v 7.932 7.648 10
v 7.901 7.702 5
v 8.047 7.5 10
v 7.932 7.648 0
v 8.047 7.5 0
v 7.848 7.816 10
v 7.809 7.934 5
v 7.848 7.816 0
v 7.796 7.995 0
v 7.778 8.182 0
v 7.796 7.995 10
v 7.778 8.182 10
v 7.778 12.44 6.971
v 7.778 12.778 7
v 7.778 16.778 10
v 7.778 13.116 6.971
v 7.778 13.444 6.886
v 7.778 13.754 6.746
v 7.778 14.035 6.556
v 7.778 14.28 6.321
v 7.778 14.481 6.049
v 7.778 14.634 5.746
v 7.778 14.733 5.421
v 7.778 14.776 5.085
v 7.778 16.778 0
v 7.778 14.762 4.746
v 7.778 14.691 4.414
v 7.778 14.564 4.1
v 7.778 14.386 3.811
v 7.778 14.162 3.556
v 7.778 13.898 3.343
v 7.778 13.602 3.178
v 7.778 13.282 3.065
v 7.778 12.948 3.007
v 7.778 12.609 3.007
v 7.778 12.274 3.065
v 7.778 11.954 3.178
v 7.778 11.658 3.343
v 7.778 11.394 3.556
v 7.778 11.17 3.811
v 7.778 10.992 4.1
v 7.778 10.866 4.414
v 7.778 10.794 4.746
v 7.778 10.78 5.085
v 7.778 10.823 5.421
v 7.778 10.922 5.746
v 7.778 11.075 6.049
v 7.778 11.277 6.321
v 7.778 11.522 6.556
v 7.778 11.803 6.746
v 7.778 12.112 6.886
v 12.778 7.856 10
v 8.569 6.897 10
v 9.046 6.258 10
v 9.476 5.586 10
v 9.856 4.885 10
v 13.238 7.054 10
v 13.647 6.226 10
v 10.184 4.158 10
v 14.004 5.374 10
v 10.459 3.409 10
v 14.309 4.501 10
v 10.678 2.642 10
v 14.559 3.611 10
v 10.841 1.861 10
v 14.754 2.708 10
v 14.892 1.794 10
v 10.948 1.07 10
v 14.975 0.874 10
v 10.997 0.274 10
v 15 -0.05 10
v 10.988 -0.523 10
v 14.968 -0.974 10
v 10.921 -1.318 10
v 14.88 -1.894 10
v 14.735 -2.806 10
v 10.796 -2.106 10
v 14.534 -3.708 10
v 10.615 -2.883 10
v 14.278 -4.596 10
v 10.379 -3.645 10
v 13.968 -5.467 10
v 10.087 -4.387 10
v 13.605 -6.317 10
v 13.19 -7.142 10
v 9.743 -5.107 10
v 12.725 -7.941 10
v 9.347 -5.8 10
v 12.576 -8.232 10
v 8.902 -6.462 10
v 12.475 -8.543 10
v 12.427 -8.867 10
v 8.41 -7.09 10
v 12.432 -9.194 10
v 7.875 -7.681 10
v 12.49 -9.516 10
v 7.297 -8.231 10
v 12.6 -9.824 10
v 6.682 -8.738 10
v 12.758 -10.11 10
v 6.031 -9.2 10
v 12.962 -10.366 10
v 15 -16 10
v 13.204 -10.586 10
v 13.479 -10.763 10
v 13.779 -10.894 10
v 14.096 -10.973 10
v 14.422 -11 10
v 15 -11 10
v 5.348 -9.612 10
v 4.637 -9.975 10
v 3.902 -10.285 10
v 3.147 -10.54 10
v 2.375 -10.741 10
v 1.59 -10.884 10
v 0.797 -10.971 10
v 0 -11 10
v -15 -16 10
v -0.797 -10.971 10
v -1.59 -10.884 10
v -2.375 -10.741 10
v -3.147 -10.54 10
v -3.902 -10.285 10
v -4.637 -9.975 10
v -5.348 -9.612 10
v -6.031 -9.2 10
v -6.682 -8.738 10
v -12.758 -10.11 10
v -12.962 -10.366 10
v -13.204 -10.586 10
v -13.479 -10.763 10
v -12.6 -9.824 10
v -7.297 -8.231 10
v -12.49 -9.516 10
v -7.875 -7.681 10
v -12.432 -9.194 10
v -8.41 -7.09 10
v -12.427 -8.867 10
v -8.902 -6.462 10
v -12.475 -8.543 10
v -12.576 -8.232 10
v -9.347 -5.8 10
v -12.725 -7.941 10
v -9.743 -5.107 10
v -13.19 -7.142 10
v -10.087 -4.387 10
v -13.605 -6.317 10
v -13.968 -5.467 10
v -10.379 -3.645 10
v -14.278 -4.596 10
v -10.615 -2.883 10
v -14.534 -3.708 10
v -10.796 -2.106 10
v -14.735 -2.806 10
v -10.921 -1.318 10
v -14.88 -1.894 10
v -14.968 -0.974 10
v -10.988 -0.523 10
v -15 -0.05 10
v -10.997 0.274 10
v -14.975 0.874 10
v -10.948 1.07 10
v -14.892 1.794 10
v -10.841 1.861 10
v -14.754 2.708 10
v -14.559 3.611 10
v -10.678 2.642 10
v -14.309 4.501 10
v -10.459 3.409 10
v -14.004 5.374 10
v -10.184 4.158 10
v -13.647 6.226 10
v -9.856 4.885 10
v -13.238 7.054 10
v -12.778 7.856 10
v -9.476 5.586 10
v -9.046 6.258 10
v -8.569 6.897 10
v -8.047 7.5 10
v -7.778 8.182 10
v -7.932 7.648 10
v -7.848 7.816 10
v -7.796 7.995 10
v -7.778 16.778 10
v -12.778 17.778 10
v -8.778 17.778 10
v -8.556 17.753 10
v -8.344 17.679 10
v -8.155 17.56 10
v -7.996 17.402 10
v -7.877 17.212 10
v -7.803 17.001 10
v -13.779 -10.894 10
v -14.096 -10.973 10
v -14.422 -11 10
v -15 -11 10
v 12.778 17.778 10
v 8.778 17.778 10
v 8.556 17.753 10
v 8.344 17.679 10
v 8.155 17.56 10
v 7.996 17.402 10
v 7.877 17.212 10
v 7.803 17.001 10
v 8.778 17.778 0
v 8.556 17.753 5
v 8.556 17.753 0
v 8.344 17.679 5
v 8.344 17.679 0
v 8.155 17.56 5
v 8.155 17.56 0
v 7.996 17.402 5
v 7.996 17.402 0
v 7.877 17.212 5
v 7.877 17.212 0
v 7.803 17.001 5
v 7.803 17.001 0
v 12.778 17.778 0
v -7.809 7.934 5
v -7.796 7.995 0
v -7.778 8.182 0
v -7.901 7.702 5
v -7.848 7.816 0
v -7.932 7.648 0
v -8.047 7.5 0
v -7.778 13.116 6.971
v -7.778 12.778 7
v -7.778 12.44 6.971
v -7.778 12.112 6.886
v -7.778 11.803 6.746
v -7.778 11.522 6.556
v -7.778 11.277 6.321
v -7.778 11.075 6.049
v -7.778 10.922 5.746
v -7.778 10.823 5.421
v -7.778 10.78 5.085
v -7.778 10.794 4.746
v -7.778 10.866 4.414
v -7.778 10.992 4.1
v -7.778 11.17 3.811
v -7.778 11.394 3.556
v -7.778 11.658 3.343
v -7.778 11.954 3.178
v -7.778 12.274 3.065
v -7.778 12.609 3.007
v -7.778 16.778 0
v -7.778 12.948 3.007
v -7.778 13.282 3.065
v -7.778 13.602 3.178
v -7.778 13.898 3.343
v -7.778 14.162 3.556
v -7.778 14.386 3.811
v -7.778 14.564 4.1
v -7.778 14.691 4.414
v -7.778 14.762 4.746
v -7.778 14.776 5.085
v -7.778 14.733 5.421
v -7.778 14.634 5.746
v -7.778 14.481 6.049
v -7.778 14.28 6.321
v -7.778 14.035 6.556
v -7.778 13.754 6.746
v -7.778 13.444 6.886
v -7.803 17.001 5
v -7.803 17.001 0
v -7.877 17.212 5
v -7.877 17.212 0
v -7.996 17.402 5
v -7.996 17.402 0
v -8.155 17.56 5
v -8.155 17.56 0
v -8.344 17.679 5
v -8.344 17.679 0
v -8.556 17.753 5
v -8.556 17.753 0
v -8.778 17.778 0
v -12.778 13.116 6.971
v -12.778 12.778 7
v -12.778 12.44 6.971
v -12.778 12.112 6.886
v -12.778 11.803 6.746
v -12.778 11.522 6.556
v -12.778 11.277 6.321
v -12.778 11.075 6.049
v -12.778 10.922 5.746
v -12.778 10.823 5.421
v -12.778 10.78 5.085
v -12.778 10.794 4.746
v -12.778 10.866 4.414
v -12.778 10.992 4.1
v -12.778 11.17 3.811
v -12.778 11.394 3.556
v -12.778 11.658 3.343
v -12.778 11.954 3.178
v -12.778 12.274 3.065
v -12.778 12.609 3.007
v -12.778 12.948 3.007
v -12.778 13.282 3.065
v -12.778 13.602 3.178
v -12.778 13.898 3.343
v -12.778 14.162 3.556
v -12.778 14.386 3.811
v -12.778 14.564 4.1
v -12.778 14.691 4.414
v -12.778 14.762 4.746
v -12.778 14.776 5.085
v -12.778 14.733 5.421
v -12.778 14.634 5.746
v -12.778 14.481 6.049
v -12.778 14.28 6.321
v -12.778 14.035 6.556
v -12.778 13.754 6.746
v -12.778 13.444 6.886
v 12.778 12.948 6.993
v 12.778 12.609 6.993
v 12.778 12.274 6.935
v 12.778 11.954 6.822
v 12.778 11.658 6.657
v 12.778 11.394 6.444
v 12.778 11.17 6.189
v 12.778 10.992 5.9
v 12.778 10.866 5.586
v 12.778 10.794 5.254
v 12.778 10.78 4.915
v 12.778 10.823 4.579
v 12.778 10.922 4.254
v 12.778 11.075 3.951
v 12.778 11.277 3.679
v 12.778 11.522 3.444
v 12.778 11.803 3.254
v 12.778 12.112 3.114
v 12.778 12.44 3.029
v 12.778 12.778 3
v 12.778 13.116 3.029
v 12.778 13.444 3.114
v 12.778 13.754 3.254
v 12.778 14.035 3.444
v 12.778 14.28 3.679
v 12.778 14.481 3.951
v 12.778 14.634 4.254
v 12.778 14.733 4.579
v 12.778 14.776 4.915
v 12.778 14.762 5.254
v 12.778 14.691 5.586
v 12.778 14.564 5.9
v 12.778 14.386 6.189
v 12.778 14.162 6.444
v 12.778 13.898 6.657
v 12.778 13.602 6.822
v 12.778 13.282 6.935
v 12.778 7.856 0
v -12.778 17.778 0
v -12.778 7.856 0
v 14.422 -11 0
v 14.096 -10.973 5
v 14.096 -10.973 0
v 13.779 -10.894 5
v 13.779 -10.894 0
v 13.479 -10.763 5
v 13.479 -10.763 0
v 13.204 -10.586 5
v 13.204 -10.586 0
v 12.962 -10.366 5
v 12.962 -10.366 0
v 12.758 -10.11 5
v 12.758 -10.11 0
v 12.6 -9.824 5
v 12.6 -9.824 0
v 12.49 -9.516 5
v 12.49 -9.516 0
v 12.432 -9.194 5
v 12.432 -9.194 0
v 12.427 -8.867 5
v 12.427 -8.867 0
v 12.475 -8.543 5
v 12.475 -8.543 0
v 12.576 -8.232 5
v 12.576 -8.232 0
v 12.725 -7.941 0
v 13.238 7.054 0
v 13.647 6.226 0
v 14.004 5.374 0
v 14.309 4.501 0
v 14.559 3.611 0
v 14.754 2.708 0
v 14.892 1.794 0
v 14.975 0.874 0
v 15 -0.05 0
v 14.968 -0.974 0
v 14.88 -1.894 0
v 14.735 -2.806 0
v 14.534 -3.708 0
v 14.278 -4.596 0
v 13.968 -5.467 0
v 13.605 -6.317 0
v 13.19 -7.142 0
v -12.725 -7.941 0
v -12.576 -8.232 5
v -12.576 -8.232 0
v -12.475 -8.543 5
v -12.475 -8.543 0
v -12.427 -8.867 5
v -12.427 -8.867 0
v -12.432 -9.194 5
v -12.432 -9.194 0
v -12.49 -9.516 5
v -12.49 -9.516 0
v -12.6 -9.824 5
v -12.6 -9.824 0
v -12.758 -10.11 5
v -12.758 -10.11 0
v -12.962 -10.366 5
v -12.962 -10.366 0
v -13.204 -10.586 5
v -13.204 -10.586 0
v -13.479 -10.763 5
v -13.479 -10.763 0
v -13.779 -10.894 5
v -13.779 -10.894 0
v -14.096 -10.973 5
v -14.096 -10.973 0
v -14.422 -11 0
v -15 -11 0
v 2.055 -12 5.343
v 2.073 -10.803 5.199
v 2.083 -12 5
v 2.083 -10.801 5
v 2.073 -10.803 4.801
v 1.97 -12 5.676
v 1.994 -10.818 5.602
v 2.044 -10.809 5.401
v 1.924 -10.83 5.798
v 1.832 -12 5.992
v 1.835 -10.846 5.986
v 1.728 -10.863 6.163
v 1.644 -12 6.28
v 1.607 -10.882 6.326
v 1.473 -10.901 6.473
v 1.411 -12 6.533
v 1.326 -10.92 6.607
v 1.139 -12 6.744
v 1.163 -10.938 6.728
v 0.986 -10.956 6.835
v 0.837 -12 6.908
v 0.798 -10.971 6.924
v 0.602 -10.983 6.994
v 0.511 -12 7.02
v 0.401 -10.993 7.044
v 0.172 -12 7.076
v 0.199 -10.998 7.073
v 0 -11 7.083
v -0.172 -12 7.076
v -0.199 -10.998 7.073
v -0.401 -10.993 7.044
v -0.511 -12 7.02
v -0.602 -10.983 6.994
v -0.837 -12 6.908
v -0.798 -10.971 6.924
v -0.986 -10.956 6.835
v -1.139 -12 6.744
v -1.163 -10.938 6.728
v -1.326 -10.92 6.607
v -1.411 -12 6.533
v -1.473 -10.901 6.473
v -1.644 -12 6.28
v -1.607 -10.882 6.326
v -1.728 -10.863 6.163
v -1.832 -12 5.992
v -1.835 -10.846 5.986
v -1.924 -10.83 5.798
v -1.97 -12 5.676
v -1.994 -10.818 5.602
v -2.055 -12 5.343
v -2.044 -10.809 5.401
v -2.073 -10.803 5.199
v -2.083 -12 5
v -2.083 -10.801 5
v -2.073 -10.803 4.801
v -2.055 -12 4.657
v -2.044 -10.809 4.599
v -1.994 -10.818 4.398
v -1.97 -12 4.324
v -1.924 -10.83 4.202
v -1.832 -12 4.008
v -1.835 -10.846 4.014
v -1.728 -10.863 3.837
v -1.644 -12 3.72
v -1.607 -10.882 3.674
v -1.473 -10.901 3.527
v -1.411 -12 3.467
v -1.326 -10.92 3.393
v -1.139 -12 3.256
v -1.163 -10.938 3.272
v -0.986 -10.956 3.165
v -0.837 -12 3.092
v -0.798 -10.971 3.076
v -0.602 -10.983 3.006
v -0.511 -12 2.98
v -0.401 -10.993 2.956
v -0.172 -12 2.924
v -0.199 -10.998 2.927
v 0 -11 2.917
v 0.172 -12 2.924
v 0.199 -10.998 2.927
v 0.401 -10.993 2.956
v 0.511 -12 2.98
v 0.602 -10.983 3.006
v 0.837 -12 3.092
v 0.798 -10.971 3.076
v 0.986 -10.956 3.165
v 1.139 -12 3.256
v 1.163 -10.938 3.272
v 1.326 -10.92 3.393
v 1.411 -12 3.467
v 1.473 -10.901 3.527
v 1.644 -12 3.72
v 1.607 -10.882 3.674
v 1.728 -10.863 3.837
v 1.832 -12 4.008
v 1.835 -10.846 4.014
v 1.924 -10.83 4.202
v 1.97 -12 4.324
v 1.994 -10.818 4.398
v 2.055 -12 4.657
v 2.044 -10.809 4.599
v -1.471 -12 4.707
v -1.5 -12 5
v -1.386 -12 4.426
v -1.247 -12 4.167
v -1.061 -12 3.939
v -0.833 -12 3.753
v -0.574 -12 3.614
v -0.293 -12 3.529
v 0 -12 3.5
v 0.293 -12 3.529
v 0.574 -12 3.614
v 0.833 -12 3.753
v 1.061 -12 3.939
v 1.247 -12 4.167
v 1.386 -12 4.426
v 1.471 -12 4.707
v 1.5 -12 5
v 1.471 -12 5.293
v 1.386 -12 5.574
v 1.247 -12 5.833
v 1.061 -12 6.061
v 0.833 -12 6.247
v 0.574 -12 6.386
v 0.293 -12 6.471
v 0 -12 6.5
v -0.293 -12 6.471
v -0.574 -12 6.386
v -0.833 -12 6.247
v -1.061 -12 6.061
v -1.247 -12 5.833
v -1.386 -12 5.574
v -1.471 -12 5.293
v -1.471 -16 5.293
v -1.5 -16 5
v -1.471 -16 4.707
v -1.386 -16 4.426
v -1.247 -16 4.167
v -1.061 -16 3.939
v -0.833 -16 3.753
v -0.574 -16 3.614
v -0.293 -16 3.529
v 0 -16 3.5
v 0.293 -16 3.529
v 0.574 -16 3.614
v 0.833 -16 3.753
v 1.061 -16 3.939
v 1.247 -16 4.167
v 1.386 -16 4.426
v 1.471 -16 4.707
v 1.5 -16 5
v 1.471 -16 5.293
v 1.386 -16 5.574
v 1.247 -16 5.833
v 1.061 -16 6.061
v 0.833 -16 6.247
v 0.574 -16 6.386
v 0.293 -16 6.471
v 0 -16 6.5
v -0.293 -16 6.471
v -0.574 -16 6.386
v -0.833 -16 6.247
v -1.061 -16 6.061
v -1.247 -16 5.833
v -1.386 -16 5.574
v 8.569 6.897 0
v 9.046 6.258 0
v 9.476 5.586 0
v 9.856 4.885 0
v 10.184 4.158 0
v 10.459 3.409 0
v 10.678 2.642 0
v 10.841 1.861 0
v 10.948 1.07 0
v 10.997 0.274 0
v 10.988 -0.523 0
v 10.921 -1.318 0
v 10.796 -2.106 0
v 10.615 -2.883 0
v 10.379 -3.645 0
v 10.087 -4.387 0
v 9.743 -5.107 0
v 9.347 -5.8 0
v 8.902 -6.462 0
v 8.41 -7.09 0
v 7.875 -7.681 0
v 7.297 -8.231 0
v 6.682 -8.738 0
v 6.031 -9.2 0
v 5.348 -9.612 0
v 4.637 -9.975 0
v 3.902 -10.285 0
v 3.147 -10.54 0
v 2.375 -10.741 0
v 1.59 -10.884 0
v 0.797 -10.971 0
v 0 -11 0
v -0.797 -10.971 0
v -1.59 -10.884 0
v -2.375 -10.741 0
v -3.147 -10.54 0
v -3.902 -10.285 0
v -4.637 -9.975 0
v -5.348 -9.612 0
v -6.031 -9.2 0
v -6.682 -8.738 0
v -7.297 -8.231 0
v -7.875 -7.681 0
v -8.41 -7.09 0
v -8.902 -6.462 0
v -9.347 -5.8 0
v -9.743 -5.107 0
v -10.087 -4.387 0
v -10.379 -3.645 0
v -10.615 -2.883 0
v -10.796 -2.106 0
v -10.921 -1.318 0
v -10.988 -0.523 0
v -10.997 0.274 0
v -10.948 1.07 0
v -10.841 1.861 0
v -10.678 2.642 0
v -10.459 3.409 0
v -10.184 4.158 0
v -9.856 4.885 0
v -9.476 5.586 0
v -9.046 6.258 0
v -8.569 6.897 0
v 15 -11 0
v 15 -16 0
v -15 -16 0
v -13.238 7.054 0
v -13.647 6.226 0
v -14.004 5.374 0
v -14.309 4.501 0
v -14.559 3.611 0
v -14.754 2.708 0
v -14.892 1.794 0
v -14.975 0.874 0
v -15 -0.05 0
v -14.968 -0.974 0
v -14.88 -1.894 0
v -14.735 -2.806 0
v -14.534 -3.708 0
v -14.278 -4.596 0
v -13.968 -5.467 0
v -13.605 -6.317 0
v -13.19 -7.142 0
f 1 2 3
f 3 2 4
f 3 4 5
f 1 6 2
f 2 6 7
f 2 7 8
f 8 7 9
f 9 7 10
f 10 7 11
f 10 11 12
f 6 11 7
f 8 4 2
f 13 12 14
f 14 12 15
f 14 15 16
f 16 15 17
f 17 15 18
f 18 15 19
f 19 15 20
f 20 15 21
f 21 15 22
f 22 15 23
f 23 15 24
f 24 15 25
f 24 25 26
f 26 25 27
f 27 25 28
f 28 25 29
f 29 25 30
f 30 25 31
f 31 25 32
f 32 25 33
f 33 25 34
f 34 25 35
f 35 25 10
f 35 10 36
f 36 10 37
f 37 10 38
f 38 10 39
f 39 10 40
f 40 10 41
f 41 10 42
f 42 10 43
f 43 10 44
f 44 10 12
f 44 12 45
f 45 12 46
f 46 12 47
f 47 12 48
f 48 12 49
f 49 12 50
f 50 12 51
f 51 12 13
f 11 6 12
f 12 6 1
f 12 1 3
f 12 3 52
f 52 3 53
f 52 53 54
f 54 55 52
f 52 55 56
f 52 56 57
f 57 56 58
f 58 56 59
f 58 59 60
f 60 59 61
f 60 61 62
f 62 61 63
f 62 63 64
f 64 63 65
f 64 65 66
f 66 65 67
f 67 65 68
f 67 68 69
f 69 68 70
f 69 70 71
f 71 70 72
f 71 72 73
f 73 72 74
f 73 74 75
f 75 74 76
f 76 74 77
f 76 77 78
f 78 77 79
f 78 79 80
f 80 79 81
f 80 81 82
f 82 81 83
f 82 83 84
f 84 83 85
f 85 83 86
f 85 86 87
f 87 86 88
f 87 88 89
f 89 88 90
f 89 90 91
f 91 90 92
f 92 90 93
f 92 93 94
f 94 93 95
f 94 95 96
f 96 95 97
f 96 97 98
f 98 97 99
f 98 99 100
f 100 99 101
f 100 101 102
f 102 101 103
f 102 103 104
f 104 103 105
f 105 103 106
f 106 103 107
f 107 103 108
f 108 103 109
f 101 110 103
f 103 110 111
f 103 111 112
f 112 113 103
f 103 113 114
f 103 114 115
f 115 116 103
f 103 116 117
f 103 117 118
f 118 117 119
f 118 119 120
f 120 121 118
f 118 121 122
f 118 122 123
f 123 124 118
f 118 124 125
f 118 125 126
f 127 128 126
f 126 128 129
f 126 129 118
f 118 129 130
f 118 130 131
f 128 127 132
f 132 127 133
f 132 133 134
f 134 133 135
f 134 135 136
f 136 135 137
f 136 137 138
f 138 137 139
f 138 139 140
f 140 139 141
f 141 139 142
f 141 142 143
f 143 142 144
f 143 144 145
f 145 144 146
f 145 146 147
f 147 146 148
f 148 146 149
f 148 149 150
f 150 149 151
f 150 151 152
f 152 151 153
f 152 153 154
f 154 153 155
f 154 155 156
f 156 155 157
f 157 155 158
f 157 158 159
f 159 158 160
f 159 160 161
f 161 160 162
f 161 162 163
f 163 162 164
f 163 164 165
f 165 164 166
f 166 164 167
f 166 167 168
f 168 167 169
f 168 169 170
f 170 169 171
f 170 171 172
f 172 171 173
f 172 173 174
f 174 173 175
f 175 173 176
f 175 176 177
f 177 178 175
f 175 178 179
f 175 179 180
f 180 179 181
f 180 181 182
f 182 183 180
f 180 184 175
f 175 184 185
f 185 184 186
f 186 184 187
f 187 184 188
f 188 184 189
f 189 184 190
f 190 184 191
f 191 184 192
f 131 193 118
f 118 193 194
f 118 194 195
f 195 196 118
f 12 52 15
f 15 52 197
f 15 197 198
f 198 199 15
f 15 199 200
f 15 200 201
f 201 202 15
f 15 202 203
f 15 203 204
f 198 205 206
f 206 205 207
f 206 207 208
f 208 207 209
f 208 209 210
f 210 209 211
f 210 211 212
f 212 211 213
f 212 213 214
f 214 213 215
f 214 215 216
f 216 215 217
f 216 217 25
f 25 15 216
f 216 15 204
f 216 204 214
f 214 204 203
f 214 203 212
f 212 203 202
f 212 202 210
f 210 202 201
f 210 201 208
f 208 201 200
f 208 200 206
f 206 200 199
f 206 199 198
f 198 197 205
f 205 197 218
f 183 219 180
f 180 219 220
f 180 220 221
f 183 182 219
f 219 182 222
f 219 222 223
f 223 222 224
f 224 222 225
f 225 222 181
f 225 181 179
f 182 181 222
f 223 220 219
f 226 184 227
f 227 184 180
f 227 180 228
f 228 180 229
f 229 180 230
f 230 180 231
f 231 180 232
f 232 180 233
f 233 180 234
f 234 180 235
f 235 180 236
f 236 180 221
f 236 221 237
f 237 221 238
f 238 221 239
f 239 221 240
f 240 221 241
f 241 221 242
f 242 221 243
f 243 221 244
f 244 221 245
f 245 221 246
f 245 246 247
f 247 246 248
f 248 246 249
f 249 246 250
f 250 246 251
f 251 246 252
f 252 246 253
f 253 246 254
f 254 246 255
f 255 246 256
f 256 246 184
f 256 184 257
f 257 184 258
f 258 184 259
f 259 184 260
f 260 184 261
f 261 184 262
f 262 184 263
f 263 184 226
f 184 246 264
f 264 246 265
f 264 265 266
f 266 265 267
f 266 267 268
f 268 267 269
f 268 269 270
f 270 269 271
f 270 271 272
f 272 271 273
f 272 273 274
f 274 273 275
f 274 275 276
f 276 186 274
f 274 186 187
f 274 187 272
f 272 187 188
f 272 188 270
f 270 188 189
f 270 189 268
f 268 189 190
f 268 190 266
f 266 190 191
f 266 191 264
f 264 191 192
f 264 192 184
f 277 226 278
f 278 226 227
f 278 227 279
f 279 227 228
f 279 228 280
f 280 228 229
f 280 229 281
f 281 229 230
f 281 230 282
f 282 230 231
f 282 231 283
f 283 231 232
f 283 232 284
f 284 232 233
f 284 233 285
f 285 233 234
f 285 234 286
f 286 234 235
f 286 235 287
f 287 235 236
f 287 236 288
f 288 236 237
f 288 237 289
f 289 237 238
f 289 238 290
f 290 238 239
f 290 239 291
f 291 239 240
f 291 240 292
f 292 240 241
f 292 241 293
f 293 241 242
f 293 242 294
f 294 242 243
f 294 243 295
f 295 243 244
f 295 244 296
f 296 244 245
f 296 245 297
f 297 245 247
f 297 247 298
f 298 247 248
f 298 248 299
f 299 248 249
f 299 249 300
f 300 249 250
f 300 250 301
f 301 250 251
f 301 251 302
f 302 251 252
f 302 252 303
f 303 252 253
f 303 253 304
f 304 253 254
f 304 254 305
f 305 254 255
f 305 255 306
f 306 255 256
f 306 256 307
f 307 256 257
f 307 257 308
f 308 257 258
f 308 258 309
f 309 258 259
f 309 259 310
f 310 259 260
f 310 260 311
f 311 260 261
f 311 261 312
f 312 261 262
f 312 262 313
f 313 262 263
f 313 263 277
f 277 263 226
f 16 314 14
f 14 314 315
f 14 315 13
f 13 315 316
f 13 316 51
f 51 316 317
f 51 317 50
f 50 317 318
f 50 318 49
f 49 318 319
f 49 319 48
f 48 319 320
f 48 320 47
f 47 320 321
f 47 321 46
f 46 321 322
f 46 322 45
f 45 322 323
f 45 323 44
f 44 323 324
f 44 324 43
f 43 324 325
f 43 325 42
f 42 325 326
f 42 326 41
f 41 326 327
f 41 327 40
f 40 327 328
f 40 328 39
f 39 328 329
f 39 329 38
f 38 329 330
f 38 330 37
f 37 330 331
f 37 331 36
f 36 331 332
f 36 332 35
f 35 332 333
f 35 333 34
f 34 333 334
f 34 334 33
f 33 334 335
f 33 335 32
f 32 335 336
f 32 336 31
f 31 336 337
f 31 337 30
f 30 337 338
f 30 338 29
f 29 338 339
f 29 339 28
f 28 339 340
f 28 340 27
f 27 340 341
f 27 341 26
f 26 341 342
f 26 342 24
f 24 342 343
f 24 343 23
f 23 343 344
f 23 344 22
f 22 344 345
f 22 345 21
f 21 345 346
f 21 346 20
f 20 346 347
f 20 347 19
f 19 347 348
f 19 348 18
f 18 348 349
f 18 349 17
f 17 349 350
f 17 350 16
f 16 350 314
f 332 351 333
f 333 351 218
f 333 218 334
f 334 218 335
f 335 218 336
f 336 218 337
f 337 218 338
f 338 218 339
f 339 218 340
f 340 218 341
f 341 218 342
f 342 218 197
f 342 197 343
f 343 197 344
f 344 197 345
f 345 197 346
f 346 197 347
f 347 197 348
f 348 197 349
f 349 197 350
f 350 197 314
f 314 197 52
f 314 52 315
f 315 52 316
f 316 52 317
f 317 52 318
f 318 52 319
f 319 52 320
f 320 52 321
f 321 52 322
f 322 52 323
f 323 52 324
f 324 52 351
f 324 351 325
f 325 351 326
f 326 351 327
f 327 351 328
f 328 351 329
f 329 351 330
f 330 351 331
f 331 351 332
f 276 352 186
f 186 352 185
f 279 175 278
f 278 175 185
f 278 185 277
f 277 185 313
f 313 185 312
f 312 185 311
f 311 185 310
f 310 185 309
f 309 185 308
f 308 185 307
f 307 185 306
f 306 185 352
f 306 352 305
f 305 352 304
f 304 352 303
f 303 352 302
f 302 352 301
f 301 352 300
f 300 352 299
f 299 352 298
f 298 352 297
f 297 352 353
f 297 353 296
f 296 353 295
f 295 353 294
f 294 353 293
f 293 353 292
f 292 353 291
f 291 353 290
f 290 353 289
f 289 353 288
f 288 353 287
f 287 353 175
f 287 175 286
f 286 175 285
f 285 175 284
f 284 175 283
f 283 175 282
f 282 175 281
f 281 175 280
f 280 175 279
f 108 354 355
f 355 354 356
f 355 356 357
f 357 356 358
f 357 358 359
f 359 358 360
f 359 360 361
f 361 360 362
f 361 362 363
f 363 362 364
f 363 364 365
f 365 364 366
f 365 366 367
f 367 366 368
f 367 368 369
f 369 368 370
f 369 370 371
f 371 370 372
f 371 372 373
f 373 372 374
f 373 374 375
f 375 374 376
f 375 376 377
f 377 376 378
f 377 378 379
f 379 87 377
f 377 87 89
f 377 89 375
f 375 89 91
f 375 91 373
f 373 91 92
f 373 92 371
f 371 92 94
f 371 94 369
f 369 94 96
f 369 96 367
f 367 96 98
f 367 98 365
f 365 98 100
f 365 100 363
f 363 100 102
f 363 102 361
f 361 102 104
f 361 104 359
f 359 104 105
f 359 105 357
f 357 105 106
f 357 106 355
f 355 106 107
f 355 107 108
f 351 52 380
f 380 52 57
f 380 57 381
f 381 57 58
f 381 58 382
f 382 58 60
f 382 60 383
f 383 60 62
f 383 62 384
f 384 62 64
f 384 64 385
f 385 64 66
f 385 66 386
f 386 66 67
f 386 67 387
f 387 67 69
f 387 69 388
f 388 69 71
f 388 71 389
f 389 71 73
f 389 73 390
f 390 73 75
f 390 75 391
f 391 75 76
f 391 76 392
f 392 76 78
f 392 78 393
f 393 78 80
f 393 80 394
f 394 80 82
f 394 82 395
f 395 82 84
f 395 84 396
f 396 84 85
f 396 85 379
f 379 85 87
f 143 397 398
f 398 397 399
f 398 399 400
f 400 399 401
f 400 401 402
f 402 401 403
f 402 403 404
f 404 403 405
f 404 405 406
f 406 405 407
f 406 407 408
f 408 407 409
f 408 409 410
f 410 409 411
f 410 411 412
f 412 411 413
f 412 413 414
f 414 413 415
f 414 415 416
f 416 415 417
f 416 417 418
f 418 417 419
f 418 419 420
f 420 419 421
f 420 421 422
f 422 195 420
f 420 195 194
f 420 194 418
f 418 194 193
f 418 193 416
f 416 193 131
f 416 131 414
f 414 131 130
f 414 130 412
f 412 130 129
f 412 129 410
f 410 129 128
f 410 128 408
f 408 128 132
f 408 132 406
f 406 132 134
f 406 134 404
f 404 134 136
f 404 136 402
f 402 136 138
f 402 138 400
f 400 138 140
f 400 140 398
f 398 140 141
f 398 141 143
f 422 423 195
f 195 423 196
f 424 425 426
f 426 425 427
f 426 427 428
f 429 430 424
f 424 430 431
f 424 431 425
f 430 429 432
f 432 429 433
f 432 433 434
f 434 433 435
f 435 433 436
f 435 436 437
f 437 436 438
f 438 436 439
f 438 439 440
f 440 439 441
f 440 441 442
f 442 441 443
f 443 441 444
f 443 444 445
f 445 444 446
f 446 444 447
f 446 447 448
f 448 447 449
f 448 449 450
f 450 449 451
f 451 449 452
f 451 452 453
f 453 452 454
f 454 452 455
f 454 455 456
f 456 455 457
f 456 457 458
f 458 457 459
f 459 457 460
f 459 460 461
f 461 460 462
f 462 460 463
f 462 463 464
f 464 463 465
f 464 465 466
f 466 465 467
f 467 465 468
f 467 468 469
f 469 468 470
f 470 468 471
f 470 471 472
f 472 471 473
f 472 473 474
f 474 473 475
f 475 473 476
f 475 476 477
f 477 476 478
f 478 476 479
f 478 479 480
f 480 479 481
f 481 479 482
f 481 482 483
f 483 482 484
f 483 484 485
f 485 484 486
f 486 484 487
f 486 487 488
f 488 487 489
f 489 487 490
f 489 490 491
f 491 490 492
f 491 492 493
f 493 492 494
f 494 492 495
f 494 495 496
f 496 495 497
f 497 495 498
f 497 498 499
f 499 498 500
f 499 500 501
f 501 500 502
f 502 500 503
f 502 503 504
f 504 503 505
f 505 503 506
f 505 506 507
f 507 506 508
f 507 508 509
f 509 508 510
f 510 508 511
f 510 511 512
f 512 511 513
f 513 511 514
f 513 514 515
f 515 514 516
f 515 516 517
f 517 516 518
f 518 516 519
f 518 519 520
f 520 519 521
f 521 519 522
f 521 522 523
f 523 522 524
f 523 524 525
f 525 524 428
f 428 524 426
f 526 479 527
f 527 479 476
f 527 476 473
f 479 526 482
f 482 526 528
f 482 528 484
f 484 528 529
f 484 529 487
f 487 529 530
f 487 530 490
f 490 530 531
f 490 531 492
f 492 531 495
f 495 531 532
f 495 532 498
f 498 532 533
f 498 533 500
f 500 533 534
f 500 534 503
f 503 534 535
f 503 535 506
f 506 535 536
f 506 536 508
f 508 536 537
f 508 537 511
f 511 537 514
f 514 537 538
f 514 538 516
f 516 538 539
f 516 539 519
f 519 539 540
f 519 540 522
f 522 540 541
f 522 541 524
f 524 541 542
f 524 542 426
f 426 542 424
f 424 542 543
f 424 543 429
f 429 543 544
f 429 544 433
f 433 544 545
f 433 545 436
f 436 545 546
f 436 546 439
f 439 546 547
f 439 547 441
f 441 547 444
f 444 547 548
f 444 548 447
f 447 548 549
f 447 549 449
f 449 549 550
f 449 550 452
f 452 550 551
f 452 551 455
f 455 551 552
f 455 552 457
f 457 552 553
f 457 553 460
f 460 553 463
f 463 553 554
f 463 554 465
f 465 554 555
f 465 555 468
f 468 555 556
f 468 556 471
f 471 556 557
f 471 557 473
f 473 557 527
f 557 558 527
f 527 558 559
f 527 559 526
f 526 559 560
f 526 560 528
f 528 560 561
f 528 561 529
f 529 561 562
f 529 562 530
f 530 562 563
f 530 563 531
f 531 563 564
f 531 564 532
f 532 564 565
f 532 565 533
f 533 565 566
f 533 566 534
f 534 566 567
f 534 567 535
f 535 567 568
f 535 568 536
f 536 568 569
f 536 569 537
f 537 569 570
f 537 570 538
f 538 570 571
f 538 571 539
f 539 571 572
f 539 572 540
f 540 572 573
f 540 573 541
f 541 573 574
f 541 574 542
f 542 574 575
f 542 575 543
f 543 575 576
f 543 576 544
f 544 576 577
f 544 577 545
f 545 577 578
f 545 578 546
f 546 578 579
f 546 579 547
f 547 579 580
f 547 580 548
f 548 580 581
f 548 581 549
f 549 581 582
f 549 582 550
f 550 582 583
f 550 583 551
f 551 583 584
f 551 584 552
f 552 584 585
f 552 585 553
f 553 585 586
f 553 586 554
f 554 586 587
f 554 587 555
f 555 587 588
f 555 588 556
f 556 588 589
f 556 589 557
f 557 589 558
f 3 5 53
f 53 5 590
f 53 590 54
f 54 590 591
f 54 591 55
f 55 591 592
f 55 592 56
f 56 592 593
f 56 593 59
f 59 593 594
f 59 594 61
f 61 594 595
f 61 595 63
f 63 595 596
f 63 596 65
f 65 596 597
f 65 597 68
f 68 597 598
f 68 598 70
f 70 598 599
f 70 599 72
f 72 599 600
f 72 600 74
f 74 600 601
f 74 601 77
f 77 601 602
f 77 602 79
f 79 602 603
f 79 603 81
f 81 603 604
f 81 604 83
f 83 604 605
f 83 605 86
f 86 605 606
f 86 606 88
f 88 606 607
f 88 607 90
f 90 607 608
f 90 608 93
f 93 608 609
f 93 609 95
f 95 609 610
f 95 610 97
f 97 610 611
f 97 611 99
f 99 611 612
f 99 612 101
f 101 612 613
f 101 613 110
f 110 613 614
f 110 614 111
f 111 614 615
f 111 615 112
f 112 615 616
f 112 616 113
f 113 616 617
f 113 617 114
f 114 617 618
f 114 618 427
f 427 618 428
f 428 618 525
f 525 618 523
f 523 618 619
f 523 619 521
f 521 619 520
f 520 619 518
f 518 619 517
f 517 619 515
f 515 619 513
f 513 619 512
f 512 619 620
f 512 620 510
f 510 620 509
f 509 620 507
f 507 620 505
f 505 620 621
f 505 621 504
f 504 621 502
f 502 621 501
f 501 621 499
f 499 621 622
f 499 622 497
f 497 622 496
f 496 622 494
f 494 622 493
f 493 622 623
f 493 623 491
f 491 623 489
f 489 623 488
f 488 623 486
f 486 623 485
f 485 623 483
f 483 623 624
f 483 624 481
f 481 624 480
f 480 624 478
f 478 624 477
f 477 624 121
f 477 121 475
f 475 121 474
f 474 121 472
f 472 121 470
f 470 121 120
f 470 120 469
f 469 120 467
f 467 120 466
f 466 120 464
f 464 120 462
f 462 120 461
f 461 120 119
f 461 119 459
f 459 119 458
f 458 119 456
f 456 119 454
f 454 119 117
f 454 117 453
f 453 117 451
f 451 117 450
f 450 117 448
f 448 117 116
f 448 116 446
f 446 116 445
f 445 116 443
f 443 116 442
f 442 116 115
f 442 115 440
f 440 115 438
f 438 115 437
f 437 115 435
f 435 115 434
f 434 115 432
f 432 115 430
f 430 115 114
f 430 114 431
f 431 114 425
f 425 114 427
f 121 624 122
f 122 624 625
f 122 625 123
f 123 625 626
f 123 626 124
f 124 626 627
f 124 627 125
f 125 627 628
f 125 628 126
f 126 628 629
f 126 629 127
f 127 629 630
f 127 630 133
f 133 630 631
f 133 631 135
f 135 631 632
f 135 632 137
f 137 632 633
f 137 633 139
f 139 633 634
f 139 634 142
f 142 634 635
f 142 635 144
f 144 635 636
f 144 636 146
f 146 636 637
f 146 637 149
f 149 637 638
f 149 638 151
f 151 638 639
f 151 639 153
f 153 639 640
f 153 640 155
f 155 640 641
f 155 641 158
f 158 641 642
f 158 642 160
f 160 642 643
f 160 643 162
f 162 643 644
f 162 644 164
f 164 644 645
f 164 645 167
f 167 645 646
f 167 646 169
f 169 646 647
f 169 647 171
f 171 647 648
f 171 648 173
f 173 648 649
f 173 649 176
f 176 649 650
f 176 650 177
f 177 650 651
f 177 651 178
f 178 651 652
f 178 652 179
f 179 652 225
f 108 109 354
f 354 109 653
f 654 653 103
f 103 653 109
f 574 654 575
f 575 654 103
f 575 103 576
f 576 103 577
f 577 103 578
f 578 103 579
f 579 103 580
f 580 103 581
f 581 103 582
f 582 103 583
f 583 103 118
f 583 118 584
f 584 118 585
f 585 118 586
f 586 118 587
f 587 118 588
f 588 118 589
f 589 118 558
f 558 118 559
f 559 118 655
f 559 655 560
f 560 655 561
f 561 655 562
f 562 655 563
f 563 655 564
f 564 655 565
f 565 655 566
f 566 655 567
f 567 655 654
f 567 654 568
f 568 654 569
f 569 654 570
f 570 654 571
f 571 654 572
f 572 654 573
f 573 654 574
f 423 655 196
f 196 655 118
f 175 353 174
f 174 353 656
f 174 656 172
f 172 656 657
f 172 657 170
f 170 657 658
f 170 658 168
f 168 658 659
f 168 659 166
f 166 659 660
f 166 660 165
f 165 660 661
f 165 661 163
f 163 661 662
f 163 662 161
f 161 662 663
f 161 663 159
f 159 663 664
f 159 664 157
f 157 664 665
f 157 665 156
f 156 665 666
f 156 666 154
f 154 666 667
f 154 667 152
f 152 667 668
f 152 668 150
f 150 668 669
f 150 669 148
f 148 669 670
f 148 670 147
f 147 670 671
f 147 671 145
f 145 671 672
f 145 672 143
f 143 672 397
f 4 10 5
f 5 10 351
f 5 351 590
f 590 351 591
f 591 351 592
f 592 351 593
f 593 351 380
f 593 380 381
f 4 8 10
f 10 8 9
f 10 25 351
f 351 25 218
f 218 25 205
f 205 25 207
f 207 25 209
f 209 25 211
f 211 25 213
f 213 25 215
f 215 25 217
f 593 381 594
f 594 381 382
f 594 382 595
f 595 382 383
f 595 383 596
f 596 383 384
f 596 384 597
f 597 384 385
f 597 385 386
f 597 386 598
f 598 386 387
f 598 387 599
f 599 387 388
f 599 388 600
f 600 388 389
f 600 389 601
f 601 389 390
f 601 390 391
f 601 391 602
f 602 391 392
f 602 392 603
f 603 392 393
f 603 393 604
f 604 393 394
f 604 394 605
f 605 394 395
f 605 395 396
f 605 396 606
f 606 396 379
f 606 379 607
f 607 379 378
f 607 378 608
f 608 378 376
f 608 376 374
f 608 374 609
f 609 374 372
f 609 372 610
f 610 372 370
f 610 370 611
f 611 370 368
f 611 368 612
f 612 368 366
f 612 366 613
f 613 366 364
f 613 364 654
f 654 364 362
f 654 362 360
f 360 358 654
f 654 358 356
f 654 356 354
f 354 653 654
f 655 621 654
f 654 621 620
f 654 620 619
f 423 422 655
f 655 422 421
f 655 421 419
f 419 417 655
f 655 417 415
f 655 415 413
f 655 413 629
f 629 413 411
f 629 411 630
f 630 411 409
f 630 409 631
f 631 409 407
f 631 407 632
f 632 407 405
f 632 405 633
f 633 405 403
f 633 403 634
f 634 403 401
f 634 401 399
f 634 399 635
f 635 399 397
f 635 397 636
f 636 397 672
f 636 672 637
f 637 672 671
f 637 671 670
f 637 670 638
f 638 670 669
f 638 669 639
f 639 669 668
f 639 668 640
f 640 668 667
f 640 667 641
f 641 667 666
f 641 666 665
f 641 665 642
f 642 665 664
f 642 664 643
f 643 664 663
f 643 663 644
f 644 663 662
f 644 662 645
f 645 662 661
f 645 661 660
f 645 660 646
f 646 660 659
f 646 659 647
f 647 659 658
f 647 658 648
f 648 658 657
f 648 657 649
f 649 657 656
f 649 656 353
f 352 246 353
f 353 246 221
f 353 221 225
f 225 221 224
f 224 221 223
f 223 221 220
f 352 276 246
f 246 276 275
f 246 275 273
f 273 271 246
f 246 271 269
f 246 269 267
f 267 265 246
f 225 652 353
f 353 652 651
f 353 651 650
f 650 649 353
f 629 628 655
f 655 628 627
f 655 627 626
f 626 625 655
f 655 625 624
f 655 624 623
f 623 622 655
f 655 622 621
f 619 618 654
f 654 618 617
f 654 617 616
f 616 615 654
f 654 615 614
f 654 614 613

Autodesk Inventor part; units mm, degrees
ref_plane "YZ Plane" through (0, 0, 0) normal (1, 0, 0) x (0, 1, 0)
ref_plane "XZ Plane" through (0, 0, 0) normal (0, 1, 0) x (-1, 0, 0)
ref_plane "XY Plane" through (0, 0, 0) normal (0, 0, 1) x (1, 0, 0)
sketch "Sketch1" plane through (0, 0, 0) normal (0, 0, 1) x (1, 0, 0)
  arc A0 (-7.7782, 7.7782) -> (7.7782, 7.7782) centre (0, 0) ccw
  line L0 (7.7782, 7.7782) -> (11.0228, 11.0228)
  line L1 (0, 0) -> (15.5887, 0) construction
  line L2 (0, 0) -> (20, 0) construction
  line L3 (-7.7782, 7.7782) -> (-10.6066, 10.6066)
  line L4 (15, -11) -> (15, -16)
  line L5 (15, -16) -> (-15, -16)
  line L6 (-15, -16) -> (-15, -11)
  line L7 (-15, -11) -> (-10.198, -11)
  arc A1 (-10.6066, 10.6066) -> (-10.198, -11) centre (0, 0) ccw
  arc A2 (10.198, -11) -> (10.6066, 10.6066) centre (0, 0) ccw
  line L8 (15, -11) -> (10.198, -11)
  dimension "d6" = 5
  dimension "d7" = 30
extrude "Extrusion1" add sketch "Sketch1" along normal blind 10
sketch "Sketch2" plane through (-15, -16, 0) normal (0, -1, 0) x (1, 0, 0)
  line L0 (0, 10) -> (30, 10) projected
  line L1 (30, 10) -> (25.198, 10) projected
  line L2 (0, 0) -> (30, 0) projected
  circle A0 centre (15, 5) radius 1.5
  point P0 (15, 0)
  dimension "d10" = 3
extrude "Extrusion2" cut sketch "Sketch2" against normal blind 24.75
sketch "Sketch3" plane through (10.198, -11, 0) normal (0, 1, 0) x (1, 0, 0)
  line L0 (4.802, 0) -> (0, 0) projected
  line L1 (-20.3961, -10) -> (-25.198, -10) projected
  line L2 (-20.3961, 0) -> (-25.198, 0) projected
  line L3 (4.802, -10) -> (0, -10) projected
  circle A0 centre (-10.198, -5) radius 2.0833
  point P0 (-10.198, 0)
sketch "Sketch4" plane through (0, 0, 0) normal (0, 0, -1) x (-1, 0, 0)
  point P0 (0, 0)
extrude "Extrusion3" cut sketch "Sketch3" against normal blind 1
sketch "Sketch5" plane through (10.198, -11, 0) normal (0, -1, 0) x (1, 0, 0)
  arc A0 (-10.198, 3.5) -> (-10.198, 6.5) centre (-10.198, 5) ccw projected
  arc A1 (-10.198, 2.9167) -> (-10.198, 7.0833) centre (-10.198, 5) ccw projected
  circle A2 centre (-10.198, 5) radius 2.0833
  point P0 (-10.198, 0)
  point P1 (-10.198, 2.9167)
extrude "Extrusion4" cut sketch "Sketch5" against normal blind 1.5
fillet "Fillet1" radius 2 1 edges at (-10.198, -11, 5)
fillet "Fillet2" radius 2 1 edges at (10.198, -11, 5)
sketch "Sketch6" plane through (0, 0, 10) normal (0, 0, 1) x (1, 0, 0)
  line L0 (-7.7782, 7.7782) -> (-10.6066, 10.6066) projected
  line L1 (-7.7782, 7.7782) -> (-7.7782, 17.7782)
  line L2 (-7.7782, 17.7782) -> (-12.7782, 17.7782)
  line L3 (-12.7782, 17.7782) -> (-12.7782, 7.8561)
  arc A0 (-10.6066, 10.6066) -> (-12.7255, -7.9412) centre (0, 0) ccw projected
  dimension "d21" = 10
  dimension "d22" = 5
extrude "Extrusion5" add sketch "Sketch6" against normal blind 10
sketch "Sketch7" plane through (0, 0, 10) normal (0, 0, 1) x (1, 0, 0)
  line L0 (7.7782, 7.7782) -> (7.7782, 17.7782)
  line L1 (7.7782, 17.7782) -> (12.7782, 17.7782)
  line L2 (12.7782, 17.7782) -> (12.7782, 7.8561)
  arc A0 (12.7255, -7.9412) -> (10.6066, 10.6066) centre (0, 0) ccw projected
  arc A1 (-7.7782, 7.7782) -> (7.7782, 7.7782) centre (0, 0) ccw projected
  line L3 (7.7782, 7.7782) -> (12.7782, 7.8561)
  dimension "d25" = 5
extrude "Extrusion6" add sketch "Sketch7" against normal blind 10
sketch "Sketch8" plane through (12.7782, 7.8561, 10) normal (1, 0, 0) x (0, 0, -1)
  line L0 (0, 9.9221) -> (0, 0) construction
  line L1 (10, -0.0779) -> (0, -0.0779) construction
  line L2 (0, 9.9221) -> (10, -0.0779) construction
  line L3 (0, 9.9221) -> (10, 9.9221) construction
  line L4 (10, 9.9221) -> (0, -0.0779) construction
  circle A0 centre (5, 4.9221) radius 2
  point P0 (10, -7.8561)
  dimension "d28" = 4
extrude "Extrusion7" cut sketch "Sketch8" against normal blind 36
fillet "Fillet5" radius 1 1 edges at (-7.7782, 17.7782, 5)
fillet "Fillet6" radius 1 1 edges at (-7.7782, 7.7782, 5)
fillet "Fillet7" radius 1 1 edges at (7.7782, 17.7782, 5)
fillet "Fillet8" radius 1 1 edges at (7.7782, 7.7782, 5)
properties part number "buisClip"
